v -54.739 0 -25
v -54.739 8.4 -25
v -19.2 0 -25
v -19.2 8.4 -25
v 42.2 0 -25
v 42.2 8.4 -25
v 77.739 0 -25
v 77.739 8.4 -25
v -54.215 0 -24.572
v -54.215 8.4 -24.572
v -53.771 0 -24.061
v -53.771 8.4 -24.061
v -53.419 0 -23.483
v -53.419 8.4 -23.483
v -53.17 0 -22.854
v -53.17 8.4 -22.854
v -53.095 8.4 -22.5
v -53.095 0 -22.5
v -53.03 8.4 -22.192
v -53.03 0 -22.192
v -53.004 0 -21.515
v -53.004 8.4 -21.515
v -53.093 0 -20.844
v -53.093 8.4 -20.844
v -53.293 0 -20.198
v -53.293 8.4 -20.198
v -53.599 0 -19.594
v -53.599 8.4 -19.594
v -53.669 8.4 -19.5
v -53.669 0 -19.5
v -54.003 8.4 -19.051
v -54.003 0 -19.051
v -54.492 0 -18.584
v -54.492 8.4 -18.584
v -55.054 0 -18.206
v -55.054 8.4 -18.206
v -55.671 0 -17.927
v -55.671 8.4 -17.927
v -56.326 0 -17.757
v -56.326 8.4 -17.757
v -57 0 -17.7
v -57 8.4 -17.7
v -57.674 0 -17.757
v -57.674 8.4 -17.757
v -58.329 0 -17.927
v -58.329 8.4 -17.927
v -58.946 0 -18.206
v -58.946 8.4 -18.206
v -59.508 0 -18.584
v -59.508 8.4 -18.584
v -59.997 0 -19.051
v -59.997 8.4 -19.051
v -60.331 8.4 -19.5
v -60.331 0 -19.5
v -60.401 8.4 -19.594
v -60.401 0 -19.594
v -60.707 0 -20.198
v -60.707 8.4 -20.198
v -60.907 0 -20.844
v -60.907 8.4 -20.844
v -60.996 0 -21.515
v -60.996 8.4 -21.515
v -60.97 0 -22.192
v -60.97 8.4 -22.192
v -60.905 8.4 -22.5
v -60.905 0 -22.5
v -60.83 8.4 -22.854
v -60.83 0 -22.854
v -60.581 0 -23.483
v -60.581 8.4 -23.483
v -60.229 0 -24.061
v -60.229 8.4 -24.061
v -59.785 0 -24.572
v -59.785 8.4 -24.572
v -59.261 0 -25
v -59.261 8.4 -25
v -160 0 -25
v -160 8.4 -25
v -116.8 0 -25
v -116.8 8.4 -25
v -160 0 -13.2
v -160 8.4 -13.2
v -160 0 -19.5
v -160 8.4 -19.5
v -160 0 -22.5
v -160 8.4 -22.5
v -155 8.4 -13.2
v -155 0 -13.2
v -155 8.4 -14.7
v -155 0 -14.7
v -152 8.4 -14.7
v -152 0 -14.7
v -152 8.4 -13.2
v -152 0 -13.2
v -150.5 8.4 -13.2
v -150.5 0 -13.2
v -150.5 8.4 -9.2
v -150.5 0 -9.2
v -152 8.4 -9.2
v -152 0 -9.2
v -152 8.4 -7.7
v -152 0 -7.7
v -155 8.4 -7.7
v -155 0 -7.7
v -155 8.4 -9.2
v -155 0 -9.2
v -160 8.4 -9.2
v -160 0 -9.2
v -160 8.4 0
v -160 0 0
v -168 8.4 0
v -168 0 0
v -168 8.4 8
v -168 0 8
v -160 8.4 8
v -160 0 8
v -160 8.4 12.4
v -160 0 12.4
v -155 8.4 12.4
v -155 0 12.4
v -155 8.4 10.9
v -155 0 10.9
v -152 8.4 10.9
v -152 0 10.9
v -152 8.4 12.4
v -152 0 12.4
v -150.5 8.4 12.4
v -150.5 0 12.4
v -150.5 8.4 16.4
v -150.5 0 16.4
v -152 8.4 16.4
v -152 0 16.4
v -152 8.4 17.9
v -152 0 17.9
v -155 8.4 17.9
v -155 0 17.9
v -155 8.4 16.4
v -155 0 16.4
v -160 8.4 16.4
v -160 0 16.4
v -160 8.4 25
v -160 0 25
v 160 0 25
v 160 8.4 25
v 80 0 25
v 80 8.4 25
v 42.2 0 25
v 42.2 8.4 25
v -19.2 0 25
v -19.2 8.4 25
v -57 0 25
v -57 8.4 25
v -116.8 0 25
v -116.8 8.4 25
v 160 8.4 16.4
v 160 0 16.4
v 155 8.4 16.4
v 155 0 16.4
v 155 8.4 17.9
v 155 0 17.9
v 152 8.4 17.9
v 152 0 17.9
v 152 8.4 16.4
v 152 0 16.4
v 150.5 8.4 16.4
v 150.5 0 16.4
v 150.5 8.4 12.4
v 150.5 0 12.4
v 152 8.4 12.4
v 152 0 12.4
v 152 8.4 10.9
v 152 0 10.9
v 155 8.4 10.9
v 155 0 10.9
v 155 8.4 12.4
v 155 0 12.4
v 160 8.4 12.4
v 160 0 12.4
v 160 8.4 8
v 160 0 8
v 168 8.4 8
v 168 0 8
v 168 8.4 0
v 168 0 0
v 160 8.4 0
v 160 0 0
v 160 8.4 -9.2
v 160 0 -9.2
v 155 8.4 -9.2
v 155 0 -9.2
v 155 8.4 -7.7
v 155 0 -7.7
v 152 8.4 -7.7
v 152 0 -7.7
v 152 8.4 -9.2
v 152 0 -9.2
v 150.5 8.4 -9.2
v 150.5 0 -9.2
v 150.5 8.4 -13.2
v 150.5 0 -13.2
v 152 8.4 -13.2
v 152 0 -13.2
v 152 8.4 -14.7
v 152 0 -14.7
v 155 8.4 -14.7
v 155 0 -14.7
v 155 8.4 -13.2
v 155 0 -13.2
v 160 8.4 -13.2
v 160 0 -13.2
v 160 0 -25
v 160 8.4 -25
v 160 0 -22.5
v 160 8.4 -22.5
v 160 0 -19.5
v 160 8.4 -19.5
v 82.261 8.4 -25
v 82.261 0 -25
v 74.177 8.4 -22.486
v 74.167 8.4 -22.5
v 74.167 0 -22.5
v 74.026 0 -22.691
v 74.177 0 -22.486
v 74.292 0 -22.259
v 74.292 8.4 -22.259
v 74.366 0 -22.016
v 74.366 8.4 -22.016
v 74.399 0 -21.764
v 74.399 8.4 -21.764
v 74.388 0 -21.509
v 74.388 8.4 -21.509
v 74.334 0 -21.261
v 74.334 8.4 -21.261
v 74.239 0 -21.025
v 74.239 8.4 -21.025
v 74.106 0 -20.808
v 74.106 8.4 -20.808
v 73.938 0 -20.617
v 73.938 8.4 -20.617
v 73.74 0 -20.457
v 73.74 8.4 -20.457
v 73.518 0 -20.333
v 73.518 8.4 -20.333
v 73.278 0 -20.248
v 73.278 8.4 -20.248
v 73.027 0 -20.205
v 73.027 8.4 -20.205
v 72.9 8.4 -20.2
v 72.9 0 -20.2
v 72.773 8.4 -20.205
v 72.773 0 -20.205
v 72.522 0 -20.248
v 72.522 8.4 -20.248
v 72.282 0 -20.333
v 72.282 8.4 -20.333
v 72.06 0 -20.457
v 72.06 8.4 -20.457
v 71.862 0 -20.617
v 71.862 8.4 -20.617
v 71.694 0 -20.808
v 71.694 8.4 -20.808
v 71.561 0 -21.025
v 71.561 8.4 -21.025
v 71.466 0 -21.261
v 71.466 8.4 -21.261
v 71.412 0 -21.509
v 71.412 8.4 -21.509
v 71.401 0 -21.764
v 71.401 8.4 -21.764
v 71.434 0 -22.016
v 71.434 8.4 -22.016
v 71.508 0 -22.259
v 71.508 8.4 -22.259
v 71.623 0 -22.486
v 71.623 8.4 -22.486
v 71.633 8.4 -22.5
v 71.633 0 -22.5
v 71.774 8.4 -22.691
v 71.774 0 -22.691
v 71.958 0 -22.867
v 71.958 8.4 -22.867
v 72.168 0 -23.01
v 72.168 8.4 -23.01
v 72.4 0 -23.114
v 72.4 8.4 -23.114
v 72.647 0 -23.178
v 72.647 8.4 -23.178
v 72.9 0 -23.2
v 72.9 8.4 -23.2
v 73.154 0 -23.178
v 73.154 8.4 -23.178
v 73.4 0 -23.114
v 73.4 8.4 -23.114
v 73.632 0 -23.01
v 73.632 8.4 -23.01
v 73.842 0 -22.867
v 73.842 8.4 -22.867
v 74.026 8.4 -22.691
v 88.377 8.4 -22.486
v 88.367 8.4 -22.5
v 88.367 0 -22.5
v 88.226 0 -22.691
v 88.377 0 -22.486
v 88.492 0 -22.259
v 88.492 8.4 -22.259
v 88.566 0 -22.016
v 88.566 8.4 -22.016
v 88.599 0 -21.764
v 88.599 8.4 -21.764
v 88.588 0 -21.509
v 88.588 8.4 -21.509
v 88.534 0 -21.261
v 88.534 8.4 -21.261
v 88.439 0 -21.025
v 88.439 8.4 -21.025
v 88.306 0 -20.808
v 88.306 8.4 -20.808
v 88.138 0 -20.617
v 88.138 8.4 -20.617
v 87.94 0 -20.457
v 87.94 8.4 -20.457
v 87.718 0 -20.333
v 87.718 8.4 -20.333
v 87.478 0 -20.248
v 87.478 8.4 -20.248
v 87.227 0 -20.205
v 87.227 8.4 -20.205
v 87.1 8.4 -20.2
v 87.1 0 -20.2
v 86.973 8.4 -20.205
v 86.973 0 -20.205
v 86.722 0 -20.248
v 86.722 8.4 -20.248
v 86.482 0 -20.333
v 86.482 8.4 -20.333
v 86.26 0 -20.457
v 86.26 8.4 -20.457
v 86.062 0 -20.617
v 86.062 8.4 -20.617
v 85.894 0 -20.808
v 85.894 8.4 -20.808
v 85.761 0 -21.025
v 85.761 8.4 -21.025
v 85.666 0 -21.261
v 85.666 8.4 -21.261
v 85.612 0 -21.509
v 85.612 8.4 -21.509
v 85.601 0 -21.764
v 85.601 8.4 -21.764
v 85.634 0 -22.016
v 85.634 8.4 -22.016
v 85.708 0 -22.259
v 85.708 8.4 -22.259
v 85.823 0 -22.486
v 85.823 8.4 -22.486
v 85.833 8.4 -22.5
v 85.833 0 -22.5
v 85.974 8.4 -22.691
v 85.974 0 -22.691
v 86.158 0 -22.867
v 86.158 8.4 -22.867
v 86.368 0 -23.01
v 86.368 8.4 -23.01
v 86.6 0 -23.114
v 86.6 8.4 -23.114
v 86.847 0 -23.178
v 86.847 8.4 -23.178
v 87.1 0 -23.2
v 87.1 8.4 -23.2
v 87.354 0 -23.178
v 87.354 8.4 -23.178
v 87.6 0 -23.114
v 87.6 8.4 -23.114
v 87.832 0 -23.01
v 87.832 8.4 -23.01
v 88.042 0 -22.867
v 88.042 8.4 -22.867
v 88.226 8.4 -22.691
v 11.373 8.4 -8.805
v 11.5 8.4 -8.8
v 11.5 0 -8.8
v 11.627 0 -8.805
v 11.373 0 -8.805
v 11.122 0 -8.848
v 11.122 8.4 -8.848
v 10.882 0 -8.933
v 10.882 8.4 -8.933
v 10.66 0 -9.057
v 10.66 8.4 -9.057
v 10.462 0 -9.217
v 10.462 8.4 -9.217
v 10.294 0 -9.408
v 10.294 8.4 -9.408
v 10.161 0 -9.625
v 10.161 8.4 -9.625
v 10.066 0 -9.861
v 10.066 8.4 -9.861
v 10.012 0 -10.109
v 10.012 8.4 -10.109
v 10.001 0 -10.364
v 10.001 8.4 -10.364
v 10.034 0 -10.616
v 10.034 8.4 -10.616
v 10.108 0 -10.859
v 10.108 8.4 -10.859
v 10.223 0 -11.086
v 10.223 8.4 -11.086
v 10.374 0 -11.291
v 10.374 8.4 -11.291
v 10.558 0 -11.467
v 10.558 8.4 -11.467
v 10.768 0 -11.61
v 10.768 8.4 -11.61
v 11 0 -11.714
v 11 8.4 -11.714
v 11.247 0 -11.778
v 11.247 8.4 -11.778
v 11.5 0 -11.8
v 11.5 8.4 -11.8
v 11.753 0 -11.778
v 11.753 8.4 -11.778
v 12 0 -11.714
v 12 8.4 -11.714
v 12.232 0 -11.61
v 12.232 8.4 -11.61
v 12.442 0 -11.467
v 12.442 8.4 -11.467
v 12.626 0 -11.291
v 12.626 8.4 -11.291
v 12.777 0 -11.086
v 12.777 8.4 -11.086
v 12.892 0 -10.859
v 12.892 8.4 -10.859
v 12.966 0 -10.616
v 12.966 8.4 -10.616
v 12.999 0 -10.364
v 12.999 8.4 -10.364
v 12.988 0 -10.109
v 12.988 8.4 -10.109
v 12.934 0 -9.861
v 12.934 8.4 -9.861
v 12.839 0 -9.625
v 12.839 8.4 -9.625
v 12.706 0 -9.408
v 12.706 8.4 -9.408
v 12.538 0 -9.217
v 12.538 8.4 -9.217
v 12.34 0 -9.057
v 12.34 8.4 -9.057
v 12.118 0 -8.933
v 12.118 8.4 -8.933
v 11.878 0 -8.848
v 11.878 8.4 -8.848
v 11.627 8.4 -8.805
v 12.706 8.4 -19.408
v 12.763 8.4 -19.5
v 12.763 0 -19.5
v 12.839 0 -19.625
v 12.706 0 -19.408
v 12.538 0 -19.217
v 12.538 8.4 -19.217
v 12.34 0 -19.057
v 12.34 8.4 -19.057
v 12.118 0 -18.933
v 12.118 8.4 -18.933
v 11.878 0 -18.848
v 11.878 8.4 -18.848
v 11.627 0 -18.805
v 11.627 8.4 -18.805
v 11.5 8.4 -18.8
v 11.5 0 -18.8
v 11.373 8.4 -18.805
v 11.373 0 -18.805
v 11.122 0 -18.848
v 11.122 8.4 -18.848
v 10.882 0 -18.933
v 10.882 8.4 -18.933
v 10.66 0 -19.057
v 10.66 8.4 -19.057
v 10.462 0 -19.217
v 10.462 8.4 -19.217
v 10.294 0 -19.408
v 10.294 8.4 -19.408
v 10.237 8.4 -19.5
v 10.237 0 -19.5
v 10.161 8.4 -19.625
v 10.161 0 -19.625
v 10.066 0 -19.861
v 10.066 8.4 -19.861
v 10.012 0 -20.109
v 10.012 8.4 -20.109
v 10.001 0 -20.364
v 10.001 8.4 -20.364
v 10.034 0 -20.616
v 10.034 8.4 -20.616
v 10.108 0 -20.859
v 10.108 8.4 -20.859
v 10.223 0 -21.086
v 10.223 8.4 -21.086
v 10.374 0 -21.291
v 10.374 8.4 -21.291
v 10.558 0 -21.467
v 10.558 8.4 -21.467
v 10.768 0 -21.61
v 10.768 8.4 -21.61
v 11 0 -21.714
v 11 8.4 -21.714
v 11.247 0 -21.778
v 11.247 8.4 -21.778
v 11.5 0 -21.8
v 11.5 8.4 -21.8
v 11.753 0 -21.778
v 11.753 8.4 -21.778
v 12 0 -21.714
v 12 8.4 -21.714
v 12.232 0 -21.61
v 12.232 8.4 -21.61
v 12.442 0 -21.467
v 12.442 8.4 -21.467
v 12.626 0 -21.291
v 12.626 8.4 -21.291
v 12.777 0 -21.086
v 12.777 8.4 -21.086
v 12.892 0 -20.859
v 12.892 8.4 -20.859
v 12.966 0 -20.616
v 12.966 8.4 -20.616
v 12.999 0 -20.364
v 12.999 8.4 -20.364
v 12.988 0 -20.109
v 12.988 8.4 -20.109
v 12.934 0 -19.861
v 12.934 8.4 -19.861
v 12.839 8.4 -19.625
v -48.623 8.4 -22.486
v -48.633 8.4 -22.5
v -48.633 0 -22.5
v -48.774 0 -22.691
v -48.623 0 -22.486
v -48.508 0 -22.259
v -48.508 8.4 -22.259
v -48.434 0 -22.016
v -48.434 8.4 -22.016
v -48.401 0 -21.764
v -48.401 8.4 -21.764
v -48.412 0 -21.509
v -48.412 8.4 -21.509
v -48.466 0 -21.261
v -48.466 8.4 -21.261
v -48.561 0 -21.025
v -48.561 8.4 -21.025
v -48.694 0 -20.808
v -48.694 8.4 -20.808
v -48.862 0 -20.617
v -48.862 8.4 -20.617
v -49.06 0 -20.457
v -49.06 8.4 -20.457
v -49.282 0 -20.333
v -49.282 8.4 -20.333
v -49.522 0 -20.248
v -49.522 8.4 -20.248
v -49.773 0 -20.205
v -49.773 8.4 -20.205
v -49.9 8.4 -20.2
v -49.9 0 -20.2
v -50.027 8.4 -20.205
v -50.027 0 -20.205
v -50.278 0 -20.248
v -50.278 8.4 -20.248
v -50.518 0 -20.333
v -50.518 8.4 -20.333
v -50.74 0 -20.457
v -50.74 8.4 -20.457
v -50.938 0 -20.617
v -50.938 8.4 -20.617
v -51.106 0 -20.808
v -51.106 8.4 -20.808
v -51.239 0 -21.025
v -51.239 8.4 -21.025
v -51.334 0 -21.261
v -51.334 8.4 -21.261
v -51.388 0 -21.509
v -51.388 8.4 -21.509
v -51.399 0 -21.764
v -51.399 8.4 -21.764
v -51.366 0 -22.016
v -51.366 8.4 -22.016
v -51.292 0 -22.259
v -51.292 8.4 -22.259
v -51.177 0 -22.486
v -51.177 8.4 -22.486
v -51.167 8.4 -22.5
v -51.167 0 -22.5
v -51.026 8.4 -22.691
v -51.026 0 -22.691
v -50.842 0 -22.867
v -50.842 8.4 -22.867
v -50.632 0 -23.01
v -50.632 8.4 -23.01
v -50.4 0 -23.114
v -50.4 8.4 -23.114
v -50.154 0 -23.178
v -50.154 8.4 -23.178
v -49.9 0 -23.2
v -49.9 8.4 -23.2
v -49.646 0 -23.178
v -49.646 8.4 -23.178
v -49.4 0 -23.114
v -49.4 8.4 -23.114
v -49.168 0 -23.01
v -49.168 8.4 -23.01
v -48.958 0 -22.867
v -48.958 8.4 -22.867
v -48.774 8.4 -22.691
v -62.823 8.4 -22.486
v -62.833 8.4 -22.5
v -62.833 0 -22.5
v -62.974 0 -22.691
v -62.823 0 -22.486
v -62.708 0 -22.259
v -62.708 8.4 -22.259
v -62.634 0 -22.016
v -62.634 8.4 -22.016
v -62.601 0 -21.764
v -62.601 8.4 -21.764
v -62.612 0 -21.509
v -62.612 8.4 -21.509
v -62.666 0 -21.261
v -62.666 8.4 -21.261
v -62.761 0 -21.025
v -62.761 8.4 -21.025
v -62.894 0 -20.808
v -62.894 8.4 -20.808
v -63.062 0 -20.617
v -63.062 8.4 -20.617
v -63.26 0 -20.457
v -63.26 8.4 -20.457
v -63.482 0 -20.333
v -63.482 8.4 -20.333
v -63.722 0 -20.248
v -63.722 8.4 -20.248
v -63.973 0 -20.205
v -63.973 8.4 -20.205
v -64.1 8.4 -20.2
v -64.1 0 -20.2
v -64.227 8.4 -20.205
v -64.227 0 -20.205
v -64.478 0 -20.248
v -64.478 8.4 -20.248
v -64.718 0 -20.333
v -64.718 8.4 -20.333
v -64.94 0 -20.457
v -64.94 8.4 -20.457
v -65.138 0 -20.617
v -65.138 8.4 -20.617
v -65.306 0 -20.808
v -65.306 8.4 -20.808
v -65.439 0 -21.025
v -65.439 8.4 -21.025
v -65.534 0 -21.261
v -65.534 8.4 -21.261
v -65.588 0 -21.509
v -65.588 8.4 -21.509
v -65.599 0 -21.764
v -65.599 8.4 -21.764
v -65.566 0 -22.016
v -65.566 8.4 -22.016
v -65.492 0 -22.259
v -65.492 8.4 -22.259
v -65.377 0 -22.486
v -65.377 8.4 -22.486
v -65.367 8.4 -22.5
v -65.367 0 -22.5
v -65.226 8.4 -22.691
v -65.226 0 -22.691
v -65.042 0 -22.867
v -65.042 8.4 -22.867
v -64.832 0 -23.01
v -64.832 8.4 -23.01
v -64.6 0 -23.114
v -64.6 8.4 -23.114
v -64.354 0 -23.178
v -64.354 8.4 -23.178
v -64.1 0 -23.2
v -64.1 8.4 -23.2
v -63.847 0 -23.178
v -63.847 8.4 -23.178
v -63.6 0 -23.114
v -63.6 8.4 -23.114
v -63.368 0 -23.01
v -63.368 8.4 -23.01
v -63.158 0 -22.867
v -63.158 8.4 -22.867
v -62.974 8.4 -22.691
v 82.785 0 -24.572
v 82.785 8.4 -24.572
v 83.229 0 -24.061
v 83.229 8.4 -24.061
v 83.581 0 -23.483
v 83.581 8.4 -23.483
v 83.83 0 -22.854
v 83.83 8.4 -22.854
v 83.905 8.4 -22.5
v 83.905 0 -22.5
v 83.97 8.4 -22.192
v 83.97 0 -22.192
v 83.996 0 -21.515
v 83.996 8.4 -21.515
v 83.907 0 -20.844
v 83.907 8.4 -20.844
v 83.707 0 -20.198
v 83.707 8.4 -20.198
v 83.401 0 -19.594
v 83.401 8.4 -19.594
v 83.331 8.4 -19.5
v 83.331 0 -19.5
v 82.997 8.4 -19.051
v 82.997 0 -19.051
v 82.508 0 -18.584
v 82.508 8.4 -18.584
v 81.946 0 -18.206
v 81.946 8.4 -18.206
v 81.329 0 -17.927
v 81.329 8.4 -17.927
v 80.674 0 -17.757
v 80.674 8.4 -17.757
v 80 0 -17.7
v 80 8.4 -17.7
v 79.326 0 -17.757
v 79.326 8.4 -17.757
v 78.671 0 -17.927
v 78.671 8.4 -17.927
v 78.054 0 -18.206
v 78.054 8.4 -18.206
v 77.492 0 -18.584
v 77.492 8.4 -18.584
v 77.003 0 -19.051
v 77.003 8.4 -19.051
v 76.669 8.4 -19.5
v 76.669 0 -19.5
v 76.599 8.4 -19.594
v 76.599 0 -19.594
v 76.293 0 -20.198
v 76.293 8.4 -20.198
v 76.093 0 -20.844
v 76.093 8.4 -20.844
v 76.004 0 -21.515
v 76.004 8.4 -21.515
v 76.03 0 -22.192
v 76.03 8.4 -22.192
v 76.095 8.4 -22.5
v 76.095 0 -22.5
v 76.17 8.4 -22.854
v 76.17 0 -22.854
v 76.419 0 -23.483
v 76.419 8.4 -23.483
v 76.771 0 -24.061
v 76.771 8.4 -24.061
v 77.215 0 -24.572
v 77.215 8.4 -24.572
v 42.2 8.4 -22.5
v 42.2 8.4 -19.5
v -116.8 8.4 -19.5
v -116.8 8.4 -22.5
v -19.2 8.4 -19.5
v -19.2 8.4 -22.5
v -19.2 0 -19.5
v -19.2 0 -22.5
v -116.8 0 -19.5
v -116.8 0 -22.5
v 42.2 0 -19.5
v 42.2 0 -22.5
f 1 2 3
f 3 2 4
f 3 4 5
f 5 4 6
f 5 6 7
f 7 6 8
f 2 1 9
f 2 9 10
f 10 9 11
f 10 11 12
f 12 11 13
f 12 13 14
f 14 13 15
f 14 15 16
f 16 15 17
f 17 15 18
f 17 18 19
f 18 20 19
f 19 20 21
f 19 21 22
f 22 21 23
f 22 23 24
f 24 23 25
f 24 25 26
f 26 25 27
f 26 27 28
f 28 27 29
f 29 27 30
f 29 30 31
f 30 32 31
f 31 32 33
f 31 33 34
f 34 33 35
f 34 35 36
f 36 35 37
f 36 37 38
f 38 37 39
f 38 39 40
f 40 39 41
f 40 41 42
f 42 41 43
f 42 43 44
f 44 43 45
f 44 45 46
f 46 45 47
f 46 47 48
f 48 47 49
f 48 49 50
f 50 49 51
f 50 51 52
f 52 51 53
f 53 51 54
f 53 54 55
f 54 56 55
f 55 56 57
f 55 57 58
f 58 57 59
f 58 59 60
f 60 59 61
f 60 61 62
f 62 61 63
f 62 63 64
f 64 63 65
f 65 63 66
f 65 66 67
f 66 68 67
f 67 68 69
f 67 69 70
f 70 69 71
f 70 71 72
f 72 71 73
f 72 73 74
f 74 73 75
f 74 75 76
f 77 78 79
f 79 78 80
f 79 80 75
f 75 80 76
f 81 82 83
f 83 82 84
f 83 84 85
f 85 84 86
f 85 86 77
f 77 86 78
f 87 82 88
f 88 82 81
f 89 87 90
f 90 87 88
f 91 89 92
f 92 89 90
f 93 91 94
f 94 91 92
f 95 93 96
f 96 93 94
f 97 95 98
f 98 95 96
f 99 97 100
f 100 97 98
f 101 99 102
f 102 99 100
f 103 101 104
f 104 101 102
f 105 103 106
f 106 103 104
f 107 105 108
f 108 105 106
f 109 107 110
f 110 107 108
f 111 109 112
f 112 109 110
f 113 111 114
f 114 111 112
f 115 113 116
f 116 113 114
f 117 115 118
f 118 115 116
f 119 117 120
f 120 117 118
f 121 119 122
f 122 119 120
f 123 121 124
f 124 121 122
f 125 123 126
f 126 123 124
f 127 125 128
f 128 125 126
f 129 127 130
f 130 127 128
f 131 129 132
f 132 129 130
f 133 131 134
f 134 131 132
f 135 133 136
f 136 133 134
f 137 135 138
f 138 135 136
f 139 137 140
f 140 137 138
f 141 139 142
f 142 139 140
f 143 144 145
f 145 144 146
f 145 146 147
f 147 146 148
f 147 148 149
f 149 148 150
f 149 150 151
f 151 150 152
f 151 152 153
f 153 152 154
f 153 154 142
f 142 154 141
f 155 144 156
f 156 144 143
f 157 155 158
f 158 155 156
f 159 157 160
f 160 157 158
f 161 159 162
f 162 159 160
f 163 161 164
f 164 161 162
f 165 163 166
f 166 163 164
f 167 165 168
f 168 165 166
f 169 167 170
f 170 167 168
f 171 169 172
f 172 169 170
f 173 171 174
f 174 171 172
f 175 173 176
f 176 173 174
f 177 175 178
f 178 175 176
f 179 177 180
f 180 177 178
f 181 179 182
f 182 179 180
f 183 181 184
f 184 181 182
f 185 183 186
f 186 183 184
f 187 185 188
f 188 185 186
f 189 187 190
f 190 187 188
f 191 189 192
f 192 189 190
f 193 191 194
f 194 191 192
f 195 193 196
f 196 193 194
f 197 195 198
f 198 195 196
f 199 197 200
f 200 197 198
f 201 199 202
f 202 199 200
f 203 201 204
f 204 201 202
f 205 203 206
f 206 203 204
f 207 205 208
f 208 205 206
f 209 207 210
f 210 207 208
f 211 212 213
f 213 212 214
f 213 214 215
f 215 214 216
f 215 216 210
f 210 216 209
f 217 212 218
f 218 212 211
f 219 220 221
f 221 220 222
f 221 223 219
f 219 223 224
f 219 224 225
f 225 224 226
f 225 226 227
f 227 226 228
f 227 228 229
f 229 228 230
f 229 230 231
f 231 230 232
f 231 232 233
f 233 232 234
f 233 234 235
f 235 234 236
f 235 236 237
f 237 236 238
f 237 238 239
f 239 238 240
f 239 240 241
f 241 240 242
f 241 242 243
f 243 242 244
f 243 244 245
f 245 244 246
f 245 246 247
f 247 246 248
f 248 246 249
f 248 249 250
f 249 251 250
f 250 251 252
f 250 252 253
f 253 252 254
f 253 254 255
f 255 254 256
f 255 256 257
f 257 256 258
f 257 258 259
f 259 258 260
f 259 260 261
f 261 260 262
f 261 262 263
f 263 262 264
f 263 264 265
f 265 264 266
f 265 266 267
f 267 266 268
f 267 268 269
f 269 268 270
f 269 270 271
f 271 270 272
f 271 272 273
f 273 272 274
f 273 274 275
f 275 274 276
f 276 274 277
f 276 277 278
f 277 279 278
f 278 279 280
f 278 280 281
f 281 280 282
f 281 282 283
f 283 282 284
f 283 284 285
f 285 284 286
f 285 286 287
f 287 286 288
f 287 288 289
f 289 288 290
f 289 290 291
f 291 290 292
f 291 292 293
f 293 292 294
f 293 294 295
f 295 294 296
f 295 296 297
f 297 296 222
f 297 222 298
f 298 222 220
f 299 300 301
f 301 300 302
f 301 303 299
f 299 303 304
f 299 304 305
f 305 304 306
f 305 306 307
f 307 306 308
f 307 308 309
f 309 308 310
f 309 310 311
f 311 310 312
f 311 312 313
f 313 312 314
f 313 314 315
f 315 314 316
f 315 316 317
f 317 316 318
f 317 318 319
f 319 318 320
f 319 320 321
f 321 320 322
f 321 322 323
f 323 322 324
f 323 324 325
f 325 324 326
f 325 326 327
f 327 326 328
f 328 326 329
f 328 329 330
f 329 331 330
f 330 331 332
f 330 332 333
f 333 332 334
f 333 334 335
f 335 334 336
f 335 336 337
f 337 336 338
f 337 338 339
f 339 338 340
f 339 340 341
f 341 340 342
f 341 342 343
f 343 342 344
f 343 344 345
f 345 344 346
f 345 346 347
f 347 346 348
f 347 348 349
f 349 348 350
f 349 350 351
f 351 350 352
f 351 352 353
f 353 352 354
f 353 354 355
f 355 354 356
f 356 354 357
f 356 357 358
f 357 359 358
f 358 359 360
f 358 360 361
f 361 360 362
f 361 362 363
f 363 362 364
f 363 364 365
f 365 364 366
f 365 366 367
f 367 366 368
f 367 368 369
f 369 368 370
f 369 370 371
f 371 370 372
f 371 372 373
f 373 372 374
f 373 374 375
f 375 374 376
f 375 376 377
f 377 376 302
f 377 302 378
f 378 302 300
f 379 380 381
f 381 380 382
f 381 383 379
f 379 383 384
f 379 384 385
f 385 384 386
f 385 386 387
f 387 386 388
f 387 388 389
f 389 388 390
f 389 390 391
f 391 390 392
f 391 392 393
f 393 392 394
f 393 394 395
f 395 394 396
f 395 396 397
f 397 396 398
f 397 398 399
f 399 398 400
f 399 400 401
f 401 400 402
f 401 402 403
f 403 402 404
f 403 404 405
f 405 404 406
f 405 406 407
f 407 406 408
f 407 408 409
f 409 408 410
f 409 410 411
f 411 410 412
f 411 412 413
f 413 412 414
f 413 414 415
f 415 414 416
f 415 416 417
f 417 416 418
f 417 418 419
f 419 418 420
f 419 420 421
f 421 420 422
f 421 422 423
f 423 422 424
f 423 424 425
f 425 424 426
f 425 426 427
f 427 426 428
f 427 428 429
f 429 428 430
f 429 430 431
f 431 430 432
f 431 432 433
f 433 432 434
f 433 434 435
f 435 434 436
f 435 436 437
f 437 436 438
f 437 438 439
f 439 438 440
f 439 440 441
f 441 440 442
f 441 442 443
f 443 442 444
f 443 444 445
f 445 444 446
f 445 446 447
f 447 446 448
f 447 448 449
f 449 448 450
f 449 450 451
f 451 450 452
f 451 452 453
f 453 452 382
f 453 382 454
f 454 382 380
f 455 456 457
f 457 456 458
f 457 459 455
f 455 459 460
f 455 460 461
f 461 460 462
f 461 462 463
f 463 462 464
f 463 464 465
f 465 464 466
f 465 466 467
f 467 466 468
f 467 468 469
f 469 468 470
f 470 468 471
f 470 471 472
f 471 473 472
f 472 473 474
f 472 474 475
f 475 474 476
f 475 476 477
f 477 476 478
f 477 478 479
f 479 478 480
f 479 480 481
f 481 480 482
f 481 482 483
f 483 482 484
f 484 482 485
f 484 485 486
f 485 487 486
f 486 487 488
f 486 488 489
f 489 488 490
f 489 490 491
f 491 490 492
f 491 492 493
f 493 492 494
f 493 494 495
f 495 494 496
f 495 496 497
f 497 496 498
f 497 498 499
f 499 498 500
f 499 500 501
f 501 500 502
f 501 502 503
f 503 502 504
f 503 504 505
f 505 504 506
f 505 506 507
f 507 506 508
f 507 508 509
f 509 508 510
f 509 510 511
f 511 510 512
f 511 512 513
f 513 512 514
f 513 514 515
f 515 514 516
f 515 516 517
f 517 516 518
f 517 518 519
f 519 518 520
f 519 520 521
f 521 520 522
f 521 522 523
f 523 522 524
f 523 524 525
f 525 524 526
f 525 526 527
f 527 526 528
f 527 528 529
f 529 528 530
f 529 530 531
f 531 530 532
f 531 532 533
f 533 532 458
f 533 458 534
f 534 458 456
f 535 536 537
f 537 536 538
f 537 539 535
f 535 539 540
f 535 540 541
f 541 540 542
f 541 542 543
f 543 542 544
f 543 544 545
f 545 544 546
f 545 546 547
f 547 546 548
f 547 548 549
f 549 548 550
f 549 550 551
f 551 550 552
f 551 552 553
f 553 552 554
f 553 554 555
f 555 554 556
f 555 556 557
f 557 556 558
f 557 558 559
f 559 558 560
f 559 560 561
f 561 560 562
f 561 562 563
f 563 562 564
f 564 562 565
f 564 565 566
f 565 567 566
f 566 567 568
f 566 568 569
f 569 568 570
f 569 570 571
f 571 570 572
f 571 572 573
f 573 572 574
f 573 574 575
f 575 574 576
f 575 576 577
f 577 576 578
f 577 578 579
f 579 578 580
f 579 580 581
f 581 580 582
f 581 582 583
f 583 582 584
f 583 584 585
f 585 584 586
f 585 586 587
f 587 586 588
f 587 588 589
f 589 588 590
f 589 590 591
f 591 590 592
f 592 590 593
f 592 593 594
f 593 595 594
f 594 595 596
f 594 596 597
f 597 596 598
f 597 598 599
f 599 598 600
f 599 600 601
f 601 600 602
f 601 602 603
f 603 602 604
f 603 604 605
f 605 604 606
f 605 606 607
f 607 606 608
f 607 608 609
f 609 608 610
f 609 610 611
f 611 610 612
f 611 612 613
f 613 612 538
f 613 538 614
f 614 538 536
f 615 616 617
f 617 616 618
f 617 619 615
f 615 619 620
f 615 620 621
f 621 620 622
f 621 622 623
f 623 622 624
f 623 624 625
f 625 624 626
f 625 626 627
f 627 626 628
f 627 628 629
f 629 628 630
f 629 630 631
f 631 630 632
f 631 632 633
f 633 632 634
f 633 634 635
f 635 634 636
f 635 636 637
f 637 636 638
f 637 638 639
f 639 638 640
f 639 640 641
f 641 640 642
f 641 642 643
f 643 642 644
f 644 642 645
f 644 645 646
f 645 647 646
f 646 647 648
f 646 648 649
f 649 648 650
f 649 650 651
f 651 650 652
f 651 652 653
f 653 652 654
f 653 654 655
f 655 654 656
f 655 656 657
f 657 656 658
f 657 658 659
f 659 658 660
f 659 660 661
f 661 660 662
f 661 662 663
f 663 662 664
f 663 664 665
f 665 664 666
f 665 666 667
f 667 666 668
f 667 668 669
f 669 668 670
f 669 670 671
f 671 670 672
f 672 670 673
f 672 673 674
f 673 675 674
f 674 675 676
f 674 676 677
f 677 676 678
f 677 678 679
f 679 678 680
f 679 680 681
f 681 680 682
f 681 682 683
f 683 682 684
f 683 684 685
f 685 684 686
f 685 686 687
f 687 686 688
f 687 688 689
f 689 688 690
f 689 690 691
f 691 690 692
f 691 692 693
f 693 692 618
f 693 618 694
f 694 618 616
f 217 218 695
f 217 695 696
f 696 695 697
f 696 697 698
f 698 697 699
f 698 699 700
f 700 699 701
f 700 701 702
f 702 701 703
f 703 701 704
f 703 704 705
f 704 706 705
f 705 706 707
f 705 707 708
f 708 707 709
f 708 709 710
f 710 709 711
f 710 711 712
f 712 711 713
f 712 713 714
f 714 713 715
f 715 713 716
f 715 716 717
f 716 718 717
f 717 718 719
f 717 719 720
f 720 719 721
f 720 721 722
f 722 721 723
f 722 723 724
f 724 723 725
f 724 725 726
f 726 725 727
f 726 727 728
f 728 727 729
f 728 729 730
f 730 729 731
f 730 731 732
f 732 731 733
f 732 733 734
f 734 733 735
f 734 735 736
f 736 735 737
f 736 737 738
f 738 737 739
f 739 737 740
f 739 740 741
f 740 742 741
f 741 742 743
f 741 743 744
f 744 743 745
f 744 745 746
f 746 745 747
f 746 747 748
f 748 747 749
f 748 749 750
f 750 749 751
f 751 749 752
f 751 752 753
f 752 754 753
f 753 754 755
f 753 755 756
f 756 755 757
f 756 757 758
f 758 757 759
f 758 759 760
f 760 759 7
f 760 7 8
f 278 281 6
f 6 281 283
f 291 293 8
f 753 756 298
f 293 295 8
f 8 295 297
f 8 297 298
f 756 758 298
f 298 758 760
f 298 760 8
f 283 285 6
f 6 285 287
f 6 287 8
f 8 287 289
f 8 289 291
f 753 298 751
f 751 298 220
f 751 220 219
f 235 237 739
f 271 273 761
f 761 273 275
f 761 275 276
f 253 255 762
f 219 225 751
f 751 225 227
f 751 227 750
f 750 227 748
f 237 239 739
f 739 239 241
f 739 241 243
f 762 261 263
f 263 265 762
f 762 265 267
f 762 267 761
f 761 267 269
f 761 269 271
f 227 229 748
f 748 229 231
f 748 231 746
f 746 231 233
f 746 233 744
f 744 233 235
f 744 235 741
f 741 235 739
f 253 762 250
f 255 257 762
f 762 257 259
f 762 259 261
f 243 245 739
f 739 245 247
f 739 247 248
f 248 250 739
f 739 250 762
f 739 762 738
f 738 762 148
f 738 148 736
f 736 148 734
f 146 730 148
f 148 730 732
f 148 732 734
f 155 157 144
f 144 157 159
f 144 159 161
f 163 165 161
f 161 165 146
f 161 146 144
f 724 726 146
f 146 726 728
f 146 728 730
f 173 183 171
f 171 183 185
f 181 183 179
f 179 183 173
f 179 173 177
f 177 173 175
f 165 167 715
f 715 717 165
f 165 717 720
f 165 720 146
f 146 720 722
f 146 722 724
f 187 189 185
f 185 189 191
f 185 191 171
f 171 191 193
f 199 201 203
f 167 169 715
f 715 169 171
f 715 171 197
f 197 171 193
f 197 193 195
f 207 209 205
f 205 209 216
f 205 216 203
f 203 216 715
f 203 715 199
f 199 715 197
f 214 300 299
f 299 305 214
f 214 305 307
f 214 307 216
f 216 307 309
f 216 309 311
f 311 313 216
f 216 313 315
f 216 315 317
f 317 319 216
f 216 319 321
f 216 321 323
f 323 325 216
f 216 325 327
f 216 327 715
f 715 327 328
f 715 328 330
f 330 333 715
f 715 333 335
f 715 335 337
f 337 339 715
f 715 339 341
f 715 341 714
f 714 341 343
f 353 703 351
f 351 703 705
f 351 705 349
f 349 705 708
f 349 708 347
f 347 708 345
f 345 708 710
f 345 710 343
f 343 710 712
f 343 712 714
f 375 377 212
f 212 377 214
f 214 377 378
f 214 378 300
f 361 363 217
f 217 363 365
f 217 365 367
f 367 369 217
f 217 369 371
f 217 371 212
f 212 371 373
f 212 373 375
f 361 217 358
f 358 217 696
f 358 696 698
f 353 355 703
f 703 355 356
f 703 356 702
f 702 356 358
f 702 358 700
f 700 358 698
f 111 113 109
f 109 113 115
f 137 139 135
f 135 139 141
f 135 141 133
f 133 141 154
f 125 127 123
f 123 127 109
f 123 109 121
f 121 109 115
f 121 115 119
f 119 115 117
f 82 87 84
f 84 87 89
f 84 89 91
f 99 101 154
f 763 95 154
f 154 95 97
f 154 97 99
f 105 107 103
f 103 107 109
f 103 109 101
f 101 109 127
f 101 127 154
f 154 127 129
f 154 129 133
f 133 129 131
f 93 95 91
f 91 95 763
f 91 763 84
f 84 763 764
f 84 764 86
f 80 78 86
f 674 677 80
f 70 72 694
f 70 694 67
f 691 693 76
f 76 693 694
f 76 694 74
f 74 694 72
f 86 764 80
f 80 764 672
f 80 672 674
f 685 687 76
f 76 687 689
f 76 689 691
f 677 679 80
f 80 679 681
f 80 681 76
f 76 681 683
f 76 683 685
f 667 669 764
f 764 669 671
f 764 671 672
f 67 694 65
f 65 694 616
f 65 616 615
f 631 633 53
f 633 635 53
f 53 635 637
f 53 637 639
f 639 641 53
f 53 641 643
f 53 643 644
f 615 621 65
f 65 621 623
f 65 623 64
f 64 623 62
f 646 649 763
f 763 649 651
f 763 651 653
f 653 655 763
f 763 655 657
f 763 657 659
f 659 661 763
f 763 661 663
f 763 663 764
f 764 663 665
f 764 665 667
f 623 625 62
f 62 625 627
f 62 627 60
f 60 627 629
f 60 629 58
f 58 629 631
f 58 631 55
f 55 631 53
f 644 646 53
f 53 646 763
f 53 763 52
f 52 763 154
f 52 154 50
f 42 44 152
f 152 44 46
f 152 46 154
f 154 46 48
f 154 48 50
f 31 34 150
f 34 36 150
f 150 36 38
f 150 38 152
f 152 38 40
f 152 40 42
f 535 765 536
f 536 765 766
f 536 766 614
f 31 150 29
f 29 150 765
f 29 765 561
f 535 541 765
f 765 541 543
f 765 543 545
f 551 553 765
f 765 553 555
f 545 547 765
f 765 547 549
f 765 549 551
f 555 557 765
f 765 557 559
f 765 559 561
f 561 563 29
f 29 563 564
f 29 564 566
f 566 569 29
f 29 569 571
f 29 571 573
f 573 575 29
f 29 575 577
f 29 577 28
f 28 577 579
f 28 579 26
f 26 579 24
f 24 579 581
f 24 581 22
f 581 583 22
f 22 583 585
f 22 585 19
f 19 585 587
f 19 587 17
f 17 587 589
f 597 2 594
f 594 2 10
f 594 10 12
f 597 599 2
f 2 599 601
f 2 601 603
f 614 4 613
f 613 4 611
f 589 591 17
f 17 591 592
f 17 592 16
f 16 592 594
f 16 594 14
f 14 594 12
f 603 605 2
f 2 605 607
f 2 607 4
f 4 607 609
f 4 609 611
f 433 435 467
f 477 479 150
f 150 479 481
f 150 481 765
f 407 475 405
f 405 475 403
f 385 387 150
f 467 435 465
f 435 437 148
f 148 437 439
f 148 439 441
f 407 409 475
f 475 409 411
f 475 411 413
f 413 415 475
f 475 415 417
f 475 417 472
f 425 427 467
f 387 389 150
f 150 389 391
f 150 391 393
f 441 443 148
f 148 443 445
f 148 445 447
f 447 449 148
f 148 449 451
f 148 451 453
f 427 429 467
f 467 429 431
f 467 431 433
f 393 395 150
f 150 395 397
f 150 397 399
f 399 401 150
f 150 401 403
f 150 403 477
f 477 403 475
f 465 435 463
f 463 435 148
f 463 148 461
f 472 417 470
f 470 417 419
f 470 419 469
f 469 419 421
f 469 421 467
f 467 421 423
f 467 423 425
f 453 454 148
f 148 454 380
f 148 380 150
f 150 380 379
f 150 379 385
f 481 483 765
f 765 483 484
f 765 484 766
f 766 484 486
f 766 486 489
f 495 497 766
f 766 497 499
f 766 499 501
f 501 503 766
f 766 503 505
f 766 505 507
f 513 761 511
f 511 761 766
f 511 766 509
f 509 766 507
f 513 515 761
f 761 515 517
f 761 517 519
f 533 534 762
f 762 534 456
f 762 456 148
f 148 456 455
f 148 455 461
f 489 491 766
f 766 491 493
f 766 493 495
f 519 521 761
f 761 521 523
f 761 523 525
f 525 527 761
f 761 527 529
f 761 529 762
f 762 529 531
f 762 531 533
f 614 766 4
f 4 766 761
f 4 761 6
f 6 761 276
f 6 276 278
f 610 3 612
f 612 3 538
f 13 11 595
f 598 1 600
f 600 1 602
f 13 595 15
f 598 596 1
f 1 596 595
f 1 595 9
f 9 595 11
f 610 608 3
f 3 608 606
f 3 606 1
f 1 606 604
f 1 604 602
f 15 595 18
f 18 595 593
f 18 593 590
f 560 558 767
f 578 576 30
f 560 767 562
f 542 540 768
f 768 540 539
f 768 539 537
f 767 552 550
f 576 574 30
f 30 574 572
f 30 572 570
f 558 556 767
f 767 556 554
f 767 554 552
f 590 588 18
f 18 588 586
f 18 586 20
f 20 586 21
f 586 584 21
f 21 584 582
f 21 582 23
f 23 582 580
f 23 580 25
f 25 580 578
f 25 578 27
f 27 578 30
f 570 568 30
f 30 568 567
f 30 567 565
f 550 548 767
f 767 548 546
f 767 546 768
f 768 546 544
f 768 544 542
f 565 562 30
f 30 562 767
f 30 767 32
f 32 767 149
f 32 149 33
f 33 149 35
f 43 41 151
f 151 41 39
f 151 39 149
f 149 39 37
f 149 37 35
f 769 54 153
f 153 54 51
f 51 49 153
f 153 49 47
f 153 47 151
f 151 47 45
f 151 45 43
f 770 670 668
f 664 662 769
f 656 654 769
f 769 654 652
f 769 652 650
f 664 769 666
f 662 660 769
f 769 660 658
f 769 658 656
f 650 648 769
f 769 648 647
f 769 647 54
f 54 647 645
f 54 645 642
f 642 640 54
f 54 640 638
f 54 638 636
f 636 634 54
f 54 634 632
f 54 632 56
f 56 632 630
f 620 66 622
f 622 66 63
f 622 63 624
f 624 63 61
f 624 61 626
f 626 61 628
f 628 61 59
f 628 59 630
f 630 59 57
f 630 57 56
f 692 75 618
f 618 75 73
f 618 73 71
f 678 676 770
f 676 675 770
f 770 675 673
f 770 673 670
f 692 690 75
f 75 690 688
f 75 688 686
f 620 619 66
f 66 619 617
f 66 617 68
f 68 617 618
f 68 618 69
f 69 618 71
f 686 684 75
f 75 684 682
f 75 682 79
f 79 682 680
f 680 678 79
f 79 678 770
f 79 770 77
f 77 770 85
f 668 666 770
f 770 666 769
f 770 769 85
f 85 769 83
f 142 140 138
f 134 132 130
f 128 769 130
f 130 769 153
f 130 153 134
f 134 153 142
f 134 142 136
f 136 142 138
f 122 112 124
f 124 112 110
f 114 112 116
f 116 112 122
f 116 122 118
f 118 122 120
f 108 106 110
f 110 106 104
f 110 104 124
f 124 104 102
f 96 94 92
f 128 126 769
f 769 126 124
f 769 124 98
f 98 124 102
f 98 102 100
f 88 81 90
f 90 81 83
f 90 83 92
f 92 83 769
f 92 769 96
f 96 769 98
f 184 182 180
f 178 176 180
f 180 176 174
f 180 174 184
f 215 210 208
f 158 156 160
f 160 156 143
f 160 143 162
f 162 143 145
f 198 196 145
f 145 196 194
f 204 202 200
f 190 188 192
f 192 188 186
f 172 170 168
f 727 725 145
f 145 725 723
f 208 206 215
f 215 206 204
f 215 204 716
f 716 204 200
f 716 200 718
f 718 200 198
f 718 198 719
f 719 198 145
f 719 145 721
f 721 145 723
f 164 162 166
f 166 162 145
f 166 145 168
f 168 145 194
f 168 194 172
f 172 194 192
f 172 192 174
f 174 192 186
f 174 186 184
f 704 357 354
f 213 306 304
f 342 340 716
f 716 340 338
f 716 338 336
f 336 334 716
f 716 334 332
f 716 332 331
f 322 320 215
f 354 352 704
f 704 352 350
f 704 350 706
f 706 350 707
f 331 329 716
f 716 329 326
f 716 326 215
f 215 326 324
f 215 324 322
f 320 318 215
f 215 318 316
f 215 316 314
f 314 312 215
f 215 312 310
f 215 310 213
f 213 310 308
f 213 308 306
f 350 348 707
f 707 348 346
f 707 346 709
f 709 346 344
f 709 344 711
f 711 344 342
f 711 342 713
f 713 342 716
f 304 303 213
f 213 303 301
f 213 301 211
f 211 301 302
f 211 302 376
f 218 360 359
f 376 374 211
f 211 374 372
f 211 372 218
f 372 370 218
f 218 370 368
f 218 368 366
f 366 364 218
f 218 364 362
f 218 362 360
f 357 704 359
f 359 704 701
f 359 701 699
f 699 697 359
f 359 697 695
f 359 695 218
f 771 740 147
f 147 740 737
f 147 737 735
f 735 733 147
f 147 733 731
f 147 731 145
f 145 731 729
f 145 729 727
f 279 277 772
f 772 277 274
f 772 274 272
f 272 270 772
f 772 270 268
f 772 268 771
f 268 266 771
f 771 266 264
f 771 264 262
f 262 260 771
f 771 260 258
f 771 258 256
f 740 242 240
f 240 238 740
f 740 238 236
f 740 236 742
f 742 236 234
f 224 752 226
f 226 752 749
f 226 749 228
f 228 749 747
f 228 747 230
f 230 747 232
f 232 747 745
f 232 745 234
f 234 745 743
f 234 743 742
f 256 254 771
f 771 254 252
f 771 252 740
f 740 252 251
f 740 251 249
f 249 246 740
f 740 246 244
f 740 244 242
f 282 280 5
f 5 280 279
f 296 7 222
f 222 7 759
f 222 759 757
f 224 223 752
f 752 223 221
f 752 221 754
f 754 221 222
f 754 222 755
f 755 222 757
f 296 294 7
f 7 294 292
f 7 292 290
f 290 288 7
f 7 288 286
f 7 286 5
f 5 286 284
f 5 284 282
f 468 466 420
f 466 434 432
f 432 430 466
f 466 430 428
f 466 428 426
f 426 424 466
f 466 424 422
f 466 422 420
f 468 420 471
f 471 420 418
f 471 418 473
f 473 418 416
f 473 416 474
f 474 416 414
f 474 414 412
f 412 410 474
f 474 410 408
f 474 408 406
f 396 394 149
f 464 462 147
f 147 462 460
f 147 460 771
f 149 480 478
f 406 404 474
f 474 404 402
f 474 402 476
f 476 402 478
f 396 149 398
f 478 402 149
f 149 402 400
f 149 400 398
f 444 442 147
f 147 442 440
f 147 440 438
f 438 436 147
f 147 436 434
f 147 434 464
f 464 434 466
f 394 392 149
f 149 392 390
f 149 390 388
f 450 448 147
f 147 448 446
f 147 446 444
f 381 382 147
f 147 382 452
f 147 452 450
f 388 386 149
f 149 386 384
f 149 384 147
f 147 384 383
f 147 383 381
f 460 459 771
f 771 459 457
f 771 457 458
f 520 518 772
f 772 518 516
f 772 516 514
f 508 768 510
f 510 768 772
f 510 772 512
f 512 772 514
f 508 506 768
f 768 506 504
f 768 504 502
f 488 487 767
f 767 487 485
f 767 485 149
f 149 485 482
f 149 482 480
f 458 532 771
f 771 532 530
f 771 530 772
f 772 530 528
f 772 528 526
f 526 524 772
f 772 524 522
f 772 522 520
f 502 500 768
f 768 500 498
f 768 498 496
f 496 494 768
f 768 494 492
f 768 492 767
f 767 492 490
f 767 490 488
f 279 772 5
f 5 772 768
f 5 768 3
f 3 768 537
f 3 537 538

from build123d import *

# Parameters (mm, degrees)
SKETCH1_R           = 1.5
BOSS_EXTRUDE1_DEPTH = 8.4


with BuildPart() as part:
    # Sketch1 → Boss-Extrude1 (new body)
    with BuildSketch(Plane(origin=(0, 0, 0), x_dir=(1, 0, 0), z_dir=(0, 1, 0))):
        with BuildLine():
            Line((-160, 25), (-59.260530911, 25))
            ThreePointArc((-59.260530911, 25), (-57, 17.7), (-54.739469089, 25))
            Line((-54.739469089, 25), (77.739469089, 25))
            ThreePointArc((77.739469089, 25), (80, 17.7), (82.260530911, 25))
            Line((82.260530911, 25), (160, 25))
            Line((160, 25), (160, 13.2))
            Line((160, 13.2), (155, 13.2))
            Line((155, 13.2), (155, 14.7))
            Line((155, 14.7), (152, 14.7))
            Line((152, 14.7), (152, 13.2))
            Line((152, 13.2), (150.5, 13.2))
            Line((150.5, 13.2), (150.5, 9.2))
            Line((150.5, 9.2), (152, 9.2))
            Line((152, 9.2), (152, 7.7))
            Line((152, 7.7), (155, 7.7))
            Line((155, 7.7), (155, 9.2))
            Line((155, 9.2), (160, 9.2))
            Line((160, 9.2), (160, 0))
            Line((160, 0), (168, 0))
            Line((168, 0), (168, -8))
            Line((168, -8), (160, -8))
            Line((160, -8), (160, -12.4))
            Line((160, -12.4), (155, -12.4))
            Line((155, -12.4), (155, -10.9))
            Line((155, -10.9), (152, -10.9))
            Line((152, -10.9), (152, -12.4))
            Line((152, -12.4), (150.5, -12.4))
            Line((150.5, -12.4), (150.5, -16.4))
            Line((150.5, -16.4), (152, -16.4))
            Line((152, -16.4), (152, -17.9))
            Line((152, -17.9), (155, -17.9))
            Line((155, -17.9), (155, -16.4))
            Line((155, -16.4), (160, -16.4))
            Line((160, -16.4), (160, -25))
            Line((160, -25), (-160, -25))
            Line((-160, -25), (-160, -16.4))
            Line((-160, -16.4), (-155, -16.4))
            Line((-155, -16.4), (-155, -17.9))
            Line((-155, -17.9), (-152, -17.9))
            Line((-152, -17.9), (-152, -16.4))
            Line((-152, -16.4), (-150.5, -16.4))
            Line((-150.5, -16.4), (-150.5, -12.4))
            Line((-150.5, -12.4), (-152, -12.4))
            Line((-152, -12.4), (-152, -10.9))
            Line((-152, -10.9), (-155, -10.9))
            Line((-155, -10.9), (-155, -12.4))
            Line((-155, -12.4), (-160, -12.4))
            Line((-160, -12.4), (-160, -8))
            Line((-160, -8), (-168, -8))
            Line((-168, -8), (-168, 0))
            Line((-168, 0), (-160, 0))
            Line((-160, 0), (-160, 9.2))
            Line((-160, 9.2), (-155, 9.2))
            Line((-155, 9.2), (-155, 7.7))
            Line((-155, 7.7), (-152, 7.7))
            Line((-152, 7.7), (-152, 9.2))
            Line((-152, 9.2), (-150.5, 9.2))
            Line((-150.5, 9.2), (-150.5, 13.2))
            Line((-150.5, 13.2), (-152, 13.2))
            Line((-152, 13.2), (-152, 14.7))
            Line((-152, 14.7), (-155, 14.7))
            Line((-155, 14.7), (-155, 13.2))
            Line((-155, 13.2), (-160, 13.2))
            Line((-160, 13.2), (-160, 25))
        make_face()
        with Locations((11.5, 20.3)):
            Circle(SKETCH1_R, mode=Mode.SUBTRACT)
        with Locations((11.5, 10.3)):
            Circle(SKETCH1_R, mode=Mode.SUBTRACT)
        with Locations((87.1, 21.7)):
            Circle(SKETCH1_R, mode=Mode.SUBTRACT)
        with Locations((72.9, 21.7)):
            Circle(SKETCH1_R, mode=Mode.SUBTRACT)
        with Locations((-49.9, 21.7)):
            Circle(SKETCH1_R, mode=Mode.SUBTRACT)
        with Locations((-64.1, 21.7)):
            Circle(SKETCH1_R, mode=Mode.SUBTRACT)
    extrude(amount=BOSS_EXTRUDE1_DEPTH)


solid = part.part
